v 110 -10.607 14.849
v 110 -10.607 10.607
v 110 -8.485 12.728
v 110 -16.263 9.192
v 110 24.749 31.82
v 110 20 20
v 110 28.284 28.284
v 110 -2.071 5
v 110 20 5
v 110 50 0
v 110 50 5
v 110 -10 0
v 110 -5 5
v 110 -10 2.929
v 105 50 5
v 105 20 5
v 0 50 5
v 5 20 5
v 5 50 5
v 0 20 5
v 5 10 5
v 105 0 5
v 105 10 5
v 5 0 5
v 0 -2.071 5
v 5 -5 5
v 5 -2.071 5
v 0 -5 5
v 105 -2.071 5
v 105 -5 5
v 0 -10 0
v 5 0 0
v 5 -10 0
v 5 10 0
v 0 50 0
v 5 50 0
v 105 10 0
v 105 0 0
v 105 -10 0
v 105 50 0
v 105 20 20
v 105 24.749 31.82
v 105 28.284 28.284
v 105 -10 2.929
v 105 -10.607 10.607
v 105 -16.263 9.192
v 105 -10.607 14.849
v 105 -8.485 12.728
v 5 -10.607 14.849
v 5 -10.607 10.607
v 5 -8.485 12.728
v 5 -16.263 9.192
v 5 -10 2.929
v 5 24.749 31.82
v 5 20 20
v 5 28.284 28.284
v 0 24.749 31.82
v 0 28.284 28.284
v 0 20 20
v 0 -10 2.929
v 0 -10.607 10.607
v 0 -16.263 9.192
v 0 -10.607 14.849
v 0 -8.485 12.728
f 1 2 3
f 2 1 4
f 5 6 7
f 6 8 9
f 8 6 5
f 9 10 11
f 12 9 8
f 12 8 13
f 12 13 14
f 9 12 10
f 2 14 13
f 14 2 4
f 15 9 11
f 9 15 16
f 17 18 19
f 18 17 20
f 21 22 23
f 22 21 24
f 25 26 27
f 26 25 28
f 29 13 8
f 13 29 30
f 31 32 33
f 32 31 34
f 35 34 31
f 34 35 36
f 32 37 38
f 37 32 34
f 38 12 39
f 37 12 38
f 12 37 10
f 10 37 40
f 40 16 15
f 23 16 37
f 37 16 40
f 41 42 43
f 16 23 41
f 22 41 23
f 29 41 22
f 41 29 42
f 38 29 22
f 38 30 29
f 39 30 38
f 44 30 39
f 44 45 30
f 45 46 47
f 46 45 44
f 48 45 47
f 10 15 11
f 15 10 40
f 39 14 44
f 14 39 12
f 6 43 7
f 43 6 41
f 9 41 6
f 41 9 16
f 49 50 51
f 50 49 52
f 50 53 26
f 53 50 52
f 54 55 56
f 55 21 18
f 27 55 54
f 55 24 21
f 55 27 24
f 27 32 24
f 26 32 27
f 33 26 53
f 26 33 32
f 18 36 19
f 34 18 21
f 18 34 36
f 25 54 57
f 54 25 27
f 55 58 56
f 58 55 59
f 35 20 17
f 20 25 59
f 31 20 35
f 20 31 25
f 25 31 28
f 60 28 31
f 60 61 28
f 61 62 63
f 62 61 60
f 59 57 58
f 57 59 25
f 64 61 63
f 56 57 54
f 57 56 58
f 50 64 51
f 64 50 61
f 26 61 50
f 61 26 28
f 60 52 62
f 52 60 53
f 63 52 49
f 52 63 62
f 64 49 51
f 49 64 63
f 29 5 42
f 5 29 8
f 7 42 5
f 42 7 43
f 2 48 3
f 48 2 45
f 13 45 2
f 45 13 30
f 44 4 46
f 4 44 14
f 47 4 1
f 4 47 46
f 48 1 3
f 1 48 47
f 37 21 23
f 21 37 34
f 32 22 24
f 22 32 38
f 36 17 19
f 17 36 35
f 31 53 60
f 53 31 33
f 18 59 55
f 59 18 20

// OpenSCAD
$fn = 50;
    union(){
        cube([110,10,5]);           /* Querbalken */
        translate([0,-10]){
            cube([5,60,5]);         /* Längsbalken 1 */ 
            }
        rotate(a=90, v=[0,1,0]){    /* Knoten 1 */
            linear_extrude(5){
                polygon([[0,0], [0,20], [-20,20]]);
                }    
            }   
        translate([105,-10]){
            cube([5,60,5]);         /* Längsbalken 2 */ 
            rotate(a=90, v=[0,1,0]){    /* Knoten 1 */
                linear_extrude(5){
                    polygon([[0,10], [0,30], [-20,30]]);
                    }    
                }   
            }
        translate([0,0]){
            rotate(a=45, v=[1,0,0]){
                cube([5,40,5]);     /* Schrägbalken 1 */
                translate([0,-5, 5]){
                    cube([5,5,10]);      /* Stopper 1 1 cm breit */
                    } 
                translate([0, -5, 15]){
                    cube([5,8,3]);      /* Haken 1  */
                    } 
                }
            }           
        translate([105,0]){
            rotate(a=45, v=[1,0,0]){
                cube([5,40,5]);      /* Schrägbalken 2 */ 
                translate([0,-5, 5]){
                    cube([5,5,10]);      /* Stopper 1 1 cm breit */
                    } 
                translate([0, -5, 15]){
                    cube([5,8,3]);      /* Haken 1  */
                    } 
                }
            }
        }
    
